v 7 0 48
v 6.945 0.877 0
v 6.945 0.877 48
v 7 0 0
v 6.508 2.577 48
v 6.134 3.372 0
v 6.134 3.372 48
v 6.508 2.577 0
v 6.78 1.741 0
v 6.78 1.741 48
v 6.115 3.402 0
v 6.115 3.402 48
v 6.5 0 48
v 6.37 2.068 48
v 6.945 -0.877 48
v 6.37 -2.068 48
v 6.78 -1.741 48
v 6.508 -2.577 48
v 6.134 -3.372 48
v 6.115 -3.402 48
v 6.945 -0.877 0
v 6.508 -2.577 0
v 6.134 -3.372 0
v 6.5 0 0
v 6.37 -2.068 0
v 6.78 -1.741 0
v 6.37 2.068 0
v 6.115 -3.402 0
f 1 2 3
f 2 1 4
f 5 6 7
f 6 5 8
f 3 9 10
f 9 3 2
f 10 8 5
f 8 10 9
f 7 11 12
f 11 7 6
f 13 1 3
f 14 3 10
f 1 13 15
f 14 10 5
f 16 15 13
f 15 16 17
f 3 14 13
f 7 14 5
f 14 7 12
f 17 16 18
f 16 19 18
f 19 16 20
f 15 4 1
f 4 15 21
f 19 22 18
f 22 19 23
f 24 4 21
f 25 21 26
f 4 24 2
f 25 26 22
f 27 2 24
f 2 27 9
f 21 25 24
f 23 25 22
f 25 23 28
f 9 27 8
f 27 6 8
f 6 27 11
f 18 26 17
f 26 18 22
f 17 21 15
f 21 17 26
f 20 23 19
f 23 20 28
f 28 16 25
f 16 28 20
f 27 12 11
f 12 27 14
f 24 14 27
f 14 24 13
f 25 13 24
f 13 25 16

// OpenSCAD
$fn = 50;


difference() {
	union() {
		cylinder(h = 48, r = 7.0000000000);
		translate(v = [-13.0000000000, 0, 0]) {
			cylinder(h = 48, r = 7.0000000000);
		}
	}
	union() {
		cylinder(h = 48, r = 3.2500000000);
		cylinder(h = 48, r = 1.8000000000);
		cylinder(h = 48, r = 1.8000000000);
		cylinder(h = 48, r = 1.8000000000);
		translate(v = [-17.5000000000, 0, 0]) {
			hull() {
				translate(v = [-3.7500000000, 0.0000000000, 0]) {
					cylinder(h = 48, r = 7.5000000000);
				}
				translate(v = [3.7500000000, 0.0000000000, 0]) {
					cylinder(h = 48, r = 7.5000000000);
				}
				translate(v = [-3.7500000000, -0.0000000000, 0]) {
					cylinder(h = 48, r = 7.5000000000);
				}
				translate(v = [3.7500000000, -0.0000000000, 0]) {
					cylinder(h = 48, r = 7.5000000000);
				}
			}
		}
		translate(v = [-10.0000000000, 0, 0.0000000000]) {
			cylinder(h = 48, r = 16.5000000000);
		}
	}
}
